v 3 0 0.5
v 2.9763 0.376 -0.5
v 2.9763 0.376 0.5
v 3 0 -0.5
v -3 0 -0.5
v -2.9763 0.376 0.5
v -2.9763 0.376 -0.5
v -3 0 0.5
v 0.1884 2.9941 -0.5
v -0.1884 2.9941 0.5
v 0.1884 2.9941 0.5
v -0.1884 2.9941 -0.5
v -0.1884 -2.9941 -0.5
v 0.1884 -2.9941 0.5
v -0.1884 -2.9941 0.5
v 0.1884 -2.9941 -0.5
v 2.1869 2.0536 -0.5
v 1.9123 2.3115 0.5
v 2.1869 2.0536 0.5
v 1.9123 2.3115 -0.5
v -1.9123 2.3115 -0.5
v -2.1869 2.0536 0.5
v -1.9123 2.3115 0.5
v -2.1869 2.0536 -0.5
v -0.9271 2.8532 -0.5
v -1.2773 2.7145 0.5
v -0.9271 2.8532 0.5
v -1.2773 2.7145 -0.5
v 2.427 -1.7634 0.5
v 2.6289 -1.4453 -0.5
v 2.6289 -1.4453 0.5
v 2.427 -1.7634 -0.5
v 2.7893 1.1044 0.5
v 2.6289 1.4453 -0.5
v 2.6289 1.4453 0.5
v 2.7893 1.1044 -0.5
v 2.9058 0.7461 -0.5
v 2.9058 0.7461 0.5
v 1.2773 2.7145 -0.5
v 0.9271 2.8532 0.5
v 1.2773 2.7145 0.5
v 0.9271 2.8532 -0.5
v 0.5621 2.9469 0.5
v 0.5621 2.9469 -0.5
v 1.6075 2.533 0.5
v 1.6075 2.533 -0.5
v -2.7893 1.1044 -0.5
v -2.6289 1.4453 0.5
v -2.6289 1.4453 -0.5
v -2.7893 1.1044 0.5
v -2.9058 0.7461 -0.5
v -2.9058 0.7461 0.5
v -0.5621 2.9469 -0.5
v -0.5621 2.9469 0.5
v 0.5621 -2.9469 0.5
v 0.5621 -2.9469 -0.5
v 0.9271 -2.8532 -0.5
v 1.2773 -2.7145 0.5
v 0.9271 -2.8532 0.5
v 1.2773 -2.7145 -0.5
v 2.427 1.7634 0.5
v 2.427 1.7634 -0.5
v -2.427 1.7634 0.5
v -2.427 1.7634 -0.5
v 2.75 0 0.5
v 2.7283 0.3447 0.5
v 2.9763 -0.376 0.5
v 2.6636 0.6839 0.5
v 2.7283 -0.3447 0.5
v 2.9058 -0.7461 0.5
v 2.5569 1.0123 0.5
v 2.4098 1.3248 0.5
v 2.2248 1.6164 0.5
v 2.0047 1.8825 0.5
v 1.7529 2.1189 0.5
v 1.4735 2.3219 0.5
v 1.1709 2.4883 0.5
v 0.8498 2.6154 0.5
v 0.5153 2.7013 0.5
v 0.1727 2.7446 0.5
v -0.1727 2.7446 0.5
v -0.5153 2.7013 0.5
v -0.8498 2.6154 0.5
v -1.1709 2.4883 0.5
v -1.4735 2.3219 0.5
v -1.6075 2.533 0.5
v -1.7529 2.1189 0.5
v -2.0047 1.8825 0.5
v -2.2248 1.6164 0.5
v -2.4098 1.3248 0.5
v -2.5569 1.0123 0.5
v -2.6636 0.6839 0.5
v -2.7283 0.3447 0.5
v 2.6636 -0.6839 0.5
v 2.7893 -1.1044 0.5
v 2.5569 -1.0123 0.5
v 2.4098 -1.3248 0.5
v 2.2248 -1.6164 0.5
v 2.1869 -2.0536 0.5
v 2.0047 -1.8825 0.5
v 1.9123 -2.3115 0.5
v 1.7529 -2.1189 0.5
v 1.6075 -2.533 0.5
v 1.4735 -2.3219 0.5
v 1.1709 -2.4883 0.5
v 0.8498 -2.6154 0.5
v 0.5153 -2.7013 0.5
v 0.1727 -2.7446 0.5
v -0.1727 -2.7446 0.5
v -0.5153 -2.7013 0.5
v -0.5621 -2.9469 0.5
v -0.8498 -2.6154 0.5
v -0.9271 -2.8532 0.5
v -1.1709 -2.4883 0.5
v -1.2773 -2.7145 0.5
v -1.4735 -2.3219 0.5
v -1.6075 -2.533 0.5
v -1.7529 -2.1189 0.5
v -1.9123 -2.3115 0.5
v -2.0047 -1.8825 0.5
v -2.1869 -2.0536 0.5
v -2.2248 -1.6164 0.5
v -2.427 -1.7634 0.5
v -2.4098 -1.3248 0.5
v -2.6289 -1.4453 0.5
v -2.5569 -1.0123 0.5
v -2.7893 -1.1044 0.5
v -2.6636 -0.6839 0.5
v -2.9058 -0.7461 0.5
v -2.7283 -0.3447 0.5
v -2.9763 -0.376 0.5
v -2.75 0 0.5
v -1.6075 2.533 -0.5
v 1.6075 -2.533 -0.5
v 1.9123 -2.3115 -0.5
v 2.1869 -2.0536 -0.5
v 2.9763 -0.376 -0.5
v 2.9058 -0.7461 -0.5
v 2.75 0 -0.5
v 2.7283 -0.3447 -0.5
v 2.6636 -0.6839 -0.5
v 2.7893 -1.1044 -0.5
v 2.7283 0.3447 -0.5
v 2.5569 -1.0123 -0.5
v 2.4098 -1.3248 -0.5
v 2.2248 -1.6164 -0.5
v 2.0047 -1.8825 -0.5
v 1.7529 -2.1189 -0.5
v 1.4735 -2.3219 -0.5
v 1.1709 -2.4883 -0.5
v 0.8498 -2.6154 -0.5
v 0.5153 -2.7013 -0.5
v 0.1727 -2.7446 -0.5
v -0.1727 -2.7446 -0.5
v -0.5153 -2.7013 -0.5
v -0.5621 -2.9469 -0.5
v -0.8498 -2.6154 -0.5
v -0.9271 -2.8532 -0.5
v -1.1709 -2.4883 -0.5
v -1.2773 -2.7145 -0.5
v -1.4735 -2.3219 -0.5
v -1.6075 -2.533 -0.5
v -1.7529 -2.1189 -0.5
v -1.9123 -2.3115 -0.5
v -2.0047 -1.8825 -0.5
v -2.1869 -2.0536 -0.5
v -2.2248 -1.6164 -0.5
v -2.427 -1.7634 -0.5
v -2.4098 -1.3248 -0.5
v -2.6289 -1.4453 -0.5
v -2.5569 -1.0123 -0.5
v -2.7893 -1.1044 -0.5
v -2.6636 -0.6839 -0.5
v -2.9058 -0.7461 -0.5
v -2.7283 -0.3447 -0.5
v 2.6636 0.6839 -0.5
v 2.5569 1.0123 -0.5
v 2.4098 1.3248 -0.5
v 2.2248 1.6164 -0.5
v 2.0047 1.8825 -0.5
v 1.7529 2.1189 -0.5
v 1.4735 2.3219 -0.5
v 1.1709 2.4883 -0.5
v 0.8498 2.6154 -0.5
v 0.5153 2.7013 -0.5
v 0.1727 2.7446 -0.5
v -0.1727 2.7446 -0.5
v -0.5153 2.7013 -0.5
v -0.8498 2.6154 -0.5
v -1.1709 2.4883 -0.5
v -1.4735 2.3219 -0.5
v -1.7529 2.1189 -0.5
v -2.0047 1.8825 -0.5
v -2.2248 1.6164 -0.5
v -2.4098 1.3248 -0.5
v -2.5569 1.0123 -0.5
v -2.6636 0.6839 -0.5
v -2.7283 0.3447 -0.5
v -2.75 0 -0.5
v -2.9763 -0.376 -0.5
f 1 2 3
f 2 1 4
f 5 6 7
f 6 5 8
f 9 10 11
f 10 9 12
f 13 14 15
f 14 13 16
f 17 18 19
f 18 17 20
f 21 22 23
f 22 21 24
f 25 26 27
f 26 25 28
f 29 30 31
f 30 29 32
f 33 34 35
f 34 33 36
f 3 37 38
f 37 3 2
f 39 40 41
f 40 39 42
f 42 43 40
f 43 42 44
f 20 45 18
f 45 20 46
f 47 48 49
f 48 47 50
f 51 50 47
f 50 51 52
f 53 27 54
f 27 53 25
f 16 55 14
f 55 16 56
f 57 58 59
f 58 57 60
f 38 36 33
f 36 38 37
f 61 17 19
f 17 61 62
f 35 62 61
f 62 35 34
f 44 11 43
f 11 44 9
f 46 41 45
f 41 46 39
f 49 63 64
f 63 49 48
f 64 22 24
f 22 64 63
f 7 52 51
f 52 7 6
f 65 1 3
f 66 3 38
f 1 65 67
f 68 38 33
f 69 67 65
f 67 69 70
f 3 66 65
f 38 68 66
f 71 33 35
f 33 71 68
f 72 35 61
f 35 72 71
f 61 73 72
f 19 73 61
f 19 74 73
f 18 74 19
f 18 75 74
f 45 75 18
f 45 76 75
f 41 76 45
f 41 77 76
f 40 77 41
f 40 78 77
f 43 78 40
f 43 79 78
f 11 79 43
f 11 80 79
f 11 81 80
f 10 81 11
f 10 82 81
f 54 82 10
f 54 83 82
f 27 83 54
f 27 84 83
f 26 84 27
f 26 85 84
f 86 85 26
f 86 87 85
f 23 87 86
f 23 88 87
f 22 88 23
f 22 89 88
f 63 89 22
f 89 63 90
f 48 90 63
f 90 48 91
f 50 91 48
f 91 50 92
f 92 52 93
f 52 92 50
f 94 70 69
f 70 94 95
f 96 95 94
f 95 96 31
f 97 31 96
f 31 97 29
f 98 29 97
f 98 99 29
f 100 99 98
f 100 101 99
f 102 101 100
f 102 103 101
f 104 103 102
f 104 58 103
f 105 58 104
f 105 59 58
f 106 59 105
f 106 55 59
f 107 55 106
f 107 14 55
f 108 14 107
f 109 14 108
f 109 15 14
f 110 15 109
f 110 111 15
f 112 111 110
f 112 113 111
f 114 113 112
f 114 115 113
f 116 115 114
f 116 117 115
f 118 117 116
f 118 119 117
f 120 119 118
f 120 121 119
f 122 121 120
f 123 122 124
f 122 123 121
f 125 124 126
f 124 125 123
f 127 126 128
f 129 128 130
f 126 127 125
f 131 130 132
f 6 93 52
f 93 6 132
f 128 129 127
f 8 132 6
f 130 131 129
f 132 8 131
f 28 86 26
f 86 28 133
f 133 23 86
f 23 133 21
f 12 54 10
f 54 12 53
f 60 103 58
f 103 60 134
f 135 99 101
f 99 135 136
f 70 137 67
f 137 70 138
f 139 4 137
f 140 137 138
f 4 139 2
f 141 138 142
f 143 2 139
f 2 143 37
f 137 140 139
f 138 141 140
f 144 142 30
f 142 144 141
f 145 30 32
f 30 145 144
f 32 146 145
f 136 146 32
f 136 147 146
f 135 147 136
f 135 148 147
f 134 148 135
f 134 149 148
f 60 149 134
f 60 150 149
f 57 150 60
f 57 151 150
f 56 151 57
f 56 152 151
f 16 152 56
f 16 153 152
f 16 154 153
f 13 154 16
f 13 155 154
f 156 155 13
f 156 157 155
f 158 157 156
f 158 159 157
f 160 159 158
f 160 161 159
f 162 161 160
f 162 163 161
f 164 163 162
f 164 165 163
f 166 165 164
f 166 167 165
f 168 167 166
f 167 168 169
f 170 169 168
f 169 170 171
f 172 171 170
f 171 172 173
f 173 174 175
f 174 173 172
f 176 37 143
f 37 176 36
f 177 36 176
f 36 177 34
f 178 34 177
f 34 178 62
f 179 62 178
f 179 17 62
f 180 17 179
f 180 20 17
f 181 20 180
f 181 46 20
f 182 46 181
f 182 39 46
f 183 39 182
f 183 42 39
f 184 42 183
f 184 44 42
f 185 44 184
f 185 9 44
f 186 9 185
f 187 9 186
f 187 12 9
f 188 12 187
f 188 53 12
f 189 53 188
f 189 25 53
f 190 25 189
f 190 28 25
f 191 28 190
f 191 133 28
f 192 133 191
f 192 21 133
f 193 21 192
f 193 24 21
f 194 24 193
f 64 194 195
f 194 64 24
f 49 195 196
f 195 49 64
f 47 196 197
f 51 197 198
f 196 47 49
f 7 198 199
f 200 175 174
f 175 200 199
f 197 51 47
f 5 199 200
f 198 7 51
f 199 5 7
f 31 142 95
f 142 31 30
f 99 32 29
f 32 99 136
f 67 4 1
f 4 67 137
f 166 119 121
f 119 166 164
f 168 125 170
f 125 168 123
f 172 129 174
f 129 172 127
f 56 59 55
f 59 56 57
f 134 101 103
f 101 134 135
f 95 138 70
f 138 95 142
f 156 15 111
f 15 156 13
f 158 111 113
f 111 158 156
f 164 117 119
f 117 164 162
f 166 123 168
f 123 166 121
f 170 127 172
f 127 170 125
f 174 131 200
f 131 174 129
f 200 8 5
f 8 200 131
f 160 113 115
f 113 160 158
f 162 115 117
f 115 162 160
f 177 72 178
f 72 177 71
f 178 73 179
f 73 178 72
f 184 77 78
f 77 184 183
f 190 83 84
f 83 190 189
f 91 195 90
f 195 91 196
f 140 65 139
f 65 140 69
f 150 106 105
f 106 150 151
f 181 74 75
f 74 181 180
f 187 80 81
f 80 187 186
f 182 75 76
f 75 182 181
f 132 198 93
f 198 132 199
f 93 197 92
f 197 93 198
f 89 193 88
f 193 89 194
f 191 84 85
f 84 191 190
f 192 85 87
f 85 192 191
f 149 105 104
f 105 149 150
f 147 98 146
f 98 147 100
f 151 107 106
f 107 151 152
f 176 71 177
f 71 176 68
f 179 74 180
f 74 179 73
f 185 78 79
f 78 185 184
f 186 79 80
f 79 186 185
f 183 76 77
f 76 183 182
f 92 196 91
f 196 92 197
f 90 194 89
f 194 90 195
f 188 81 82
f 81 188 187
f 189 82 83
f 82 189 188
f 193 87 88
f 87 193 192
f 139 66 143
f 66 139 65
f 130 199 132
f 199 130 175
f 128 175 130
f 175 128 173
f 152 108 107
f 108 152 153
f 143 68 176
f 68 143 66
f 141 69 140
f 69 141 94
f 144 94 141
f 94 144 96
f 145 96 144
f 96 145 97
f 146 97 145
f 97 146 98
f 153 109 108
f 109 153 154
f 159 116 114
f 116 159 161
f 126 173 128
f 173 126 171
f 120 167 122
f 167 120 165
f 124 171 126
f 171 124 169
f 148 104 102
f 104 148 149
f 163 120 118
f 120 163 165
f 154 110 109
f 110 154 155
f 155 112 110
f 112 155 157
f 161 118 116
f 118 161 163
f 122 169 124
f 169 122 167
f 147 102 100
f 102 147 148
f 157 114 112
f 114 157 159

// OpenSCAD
$fn = 50;


difference() {
	union() {
		translate(v = [0, 0, -0.5000000000]) {
			cylinder(h = 1, r = 3.0000000000);
		}
	}
	union() {
		translate(v = [0, 0, -100.0000000000]) {
			cylinder(h = 200, r = 2.7500000000);
		}
	}
}
